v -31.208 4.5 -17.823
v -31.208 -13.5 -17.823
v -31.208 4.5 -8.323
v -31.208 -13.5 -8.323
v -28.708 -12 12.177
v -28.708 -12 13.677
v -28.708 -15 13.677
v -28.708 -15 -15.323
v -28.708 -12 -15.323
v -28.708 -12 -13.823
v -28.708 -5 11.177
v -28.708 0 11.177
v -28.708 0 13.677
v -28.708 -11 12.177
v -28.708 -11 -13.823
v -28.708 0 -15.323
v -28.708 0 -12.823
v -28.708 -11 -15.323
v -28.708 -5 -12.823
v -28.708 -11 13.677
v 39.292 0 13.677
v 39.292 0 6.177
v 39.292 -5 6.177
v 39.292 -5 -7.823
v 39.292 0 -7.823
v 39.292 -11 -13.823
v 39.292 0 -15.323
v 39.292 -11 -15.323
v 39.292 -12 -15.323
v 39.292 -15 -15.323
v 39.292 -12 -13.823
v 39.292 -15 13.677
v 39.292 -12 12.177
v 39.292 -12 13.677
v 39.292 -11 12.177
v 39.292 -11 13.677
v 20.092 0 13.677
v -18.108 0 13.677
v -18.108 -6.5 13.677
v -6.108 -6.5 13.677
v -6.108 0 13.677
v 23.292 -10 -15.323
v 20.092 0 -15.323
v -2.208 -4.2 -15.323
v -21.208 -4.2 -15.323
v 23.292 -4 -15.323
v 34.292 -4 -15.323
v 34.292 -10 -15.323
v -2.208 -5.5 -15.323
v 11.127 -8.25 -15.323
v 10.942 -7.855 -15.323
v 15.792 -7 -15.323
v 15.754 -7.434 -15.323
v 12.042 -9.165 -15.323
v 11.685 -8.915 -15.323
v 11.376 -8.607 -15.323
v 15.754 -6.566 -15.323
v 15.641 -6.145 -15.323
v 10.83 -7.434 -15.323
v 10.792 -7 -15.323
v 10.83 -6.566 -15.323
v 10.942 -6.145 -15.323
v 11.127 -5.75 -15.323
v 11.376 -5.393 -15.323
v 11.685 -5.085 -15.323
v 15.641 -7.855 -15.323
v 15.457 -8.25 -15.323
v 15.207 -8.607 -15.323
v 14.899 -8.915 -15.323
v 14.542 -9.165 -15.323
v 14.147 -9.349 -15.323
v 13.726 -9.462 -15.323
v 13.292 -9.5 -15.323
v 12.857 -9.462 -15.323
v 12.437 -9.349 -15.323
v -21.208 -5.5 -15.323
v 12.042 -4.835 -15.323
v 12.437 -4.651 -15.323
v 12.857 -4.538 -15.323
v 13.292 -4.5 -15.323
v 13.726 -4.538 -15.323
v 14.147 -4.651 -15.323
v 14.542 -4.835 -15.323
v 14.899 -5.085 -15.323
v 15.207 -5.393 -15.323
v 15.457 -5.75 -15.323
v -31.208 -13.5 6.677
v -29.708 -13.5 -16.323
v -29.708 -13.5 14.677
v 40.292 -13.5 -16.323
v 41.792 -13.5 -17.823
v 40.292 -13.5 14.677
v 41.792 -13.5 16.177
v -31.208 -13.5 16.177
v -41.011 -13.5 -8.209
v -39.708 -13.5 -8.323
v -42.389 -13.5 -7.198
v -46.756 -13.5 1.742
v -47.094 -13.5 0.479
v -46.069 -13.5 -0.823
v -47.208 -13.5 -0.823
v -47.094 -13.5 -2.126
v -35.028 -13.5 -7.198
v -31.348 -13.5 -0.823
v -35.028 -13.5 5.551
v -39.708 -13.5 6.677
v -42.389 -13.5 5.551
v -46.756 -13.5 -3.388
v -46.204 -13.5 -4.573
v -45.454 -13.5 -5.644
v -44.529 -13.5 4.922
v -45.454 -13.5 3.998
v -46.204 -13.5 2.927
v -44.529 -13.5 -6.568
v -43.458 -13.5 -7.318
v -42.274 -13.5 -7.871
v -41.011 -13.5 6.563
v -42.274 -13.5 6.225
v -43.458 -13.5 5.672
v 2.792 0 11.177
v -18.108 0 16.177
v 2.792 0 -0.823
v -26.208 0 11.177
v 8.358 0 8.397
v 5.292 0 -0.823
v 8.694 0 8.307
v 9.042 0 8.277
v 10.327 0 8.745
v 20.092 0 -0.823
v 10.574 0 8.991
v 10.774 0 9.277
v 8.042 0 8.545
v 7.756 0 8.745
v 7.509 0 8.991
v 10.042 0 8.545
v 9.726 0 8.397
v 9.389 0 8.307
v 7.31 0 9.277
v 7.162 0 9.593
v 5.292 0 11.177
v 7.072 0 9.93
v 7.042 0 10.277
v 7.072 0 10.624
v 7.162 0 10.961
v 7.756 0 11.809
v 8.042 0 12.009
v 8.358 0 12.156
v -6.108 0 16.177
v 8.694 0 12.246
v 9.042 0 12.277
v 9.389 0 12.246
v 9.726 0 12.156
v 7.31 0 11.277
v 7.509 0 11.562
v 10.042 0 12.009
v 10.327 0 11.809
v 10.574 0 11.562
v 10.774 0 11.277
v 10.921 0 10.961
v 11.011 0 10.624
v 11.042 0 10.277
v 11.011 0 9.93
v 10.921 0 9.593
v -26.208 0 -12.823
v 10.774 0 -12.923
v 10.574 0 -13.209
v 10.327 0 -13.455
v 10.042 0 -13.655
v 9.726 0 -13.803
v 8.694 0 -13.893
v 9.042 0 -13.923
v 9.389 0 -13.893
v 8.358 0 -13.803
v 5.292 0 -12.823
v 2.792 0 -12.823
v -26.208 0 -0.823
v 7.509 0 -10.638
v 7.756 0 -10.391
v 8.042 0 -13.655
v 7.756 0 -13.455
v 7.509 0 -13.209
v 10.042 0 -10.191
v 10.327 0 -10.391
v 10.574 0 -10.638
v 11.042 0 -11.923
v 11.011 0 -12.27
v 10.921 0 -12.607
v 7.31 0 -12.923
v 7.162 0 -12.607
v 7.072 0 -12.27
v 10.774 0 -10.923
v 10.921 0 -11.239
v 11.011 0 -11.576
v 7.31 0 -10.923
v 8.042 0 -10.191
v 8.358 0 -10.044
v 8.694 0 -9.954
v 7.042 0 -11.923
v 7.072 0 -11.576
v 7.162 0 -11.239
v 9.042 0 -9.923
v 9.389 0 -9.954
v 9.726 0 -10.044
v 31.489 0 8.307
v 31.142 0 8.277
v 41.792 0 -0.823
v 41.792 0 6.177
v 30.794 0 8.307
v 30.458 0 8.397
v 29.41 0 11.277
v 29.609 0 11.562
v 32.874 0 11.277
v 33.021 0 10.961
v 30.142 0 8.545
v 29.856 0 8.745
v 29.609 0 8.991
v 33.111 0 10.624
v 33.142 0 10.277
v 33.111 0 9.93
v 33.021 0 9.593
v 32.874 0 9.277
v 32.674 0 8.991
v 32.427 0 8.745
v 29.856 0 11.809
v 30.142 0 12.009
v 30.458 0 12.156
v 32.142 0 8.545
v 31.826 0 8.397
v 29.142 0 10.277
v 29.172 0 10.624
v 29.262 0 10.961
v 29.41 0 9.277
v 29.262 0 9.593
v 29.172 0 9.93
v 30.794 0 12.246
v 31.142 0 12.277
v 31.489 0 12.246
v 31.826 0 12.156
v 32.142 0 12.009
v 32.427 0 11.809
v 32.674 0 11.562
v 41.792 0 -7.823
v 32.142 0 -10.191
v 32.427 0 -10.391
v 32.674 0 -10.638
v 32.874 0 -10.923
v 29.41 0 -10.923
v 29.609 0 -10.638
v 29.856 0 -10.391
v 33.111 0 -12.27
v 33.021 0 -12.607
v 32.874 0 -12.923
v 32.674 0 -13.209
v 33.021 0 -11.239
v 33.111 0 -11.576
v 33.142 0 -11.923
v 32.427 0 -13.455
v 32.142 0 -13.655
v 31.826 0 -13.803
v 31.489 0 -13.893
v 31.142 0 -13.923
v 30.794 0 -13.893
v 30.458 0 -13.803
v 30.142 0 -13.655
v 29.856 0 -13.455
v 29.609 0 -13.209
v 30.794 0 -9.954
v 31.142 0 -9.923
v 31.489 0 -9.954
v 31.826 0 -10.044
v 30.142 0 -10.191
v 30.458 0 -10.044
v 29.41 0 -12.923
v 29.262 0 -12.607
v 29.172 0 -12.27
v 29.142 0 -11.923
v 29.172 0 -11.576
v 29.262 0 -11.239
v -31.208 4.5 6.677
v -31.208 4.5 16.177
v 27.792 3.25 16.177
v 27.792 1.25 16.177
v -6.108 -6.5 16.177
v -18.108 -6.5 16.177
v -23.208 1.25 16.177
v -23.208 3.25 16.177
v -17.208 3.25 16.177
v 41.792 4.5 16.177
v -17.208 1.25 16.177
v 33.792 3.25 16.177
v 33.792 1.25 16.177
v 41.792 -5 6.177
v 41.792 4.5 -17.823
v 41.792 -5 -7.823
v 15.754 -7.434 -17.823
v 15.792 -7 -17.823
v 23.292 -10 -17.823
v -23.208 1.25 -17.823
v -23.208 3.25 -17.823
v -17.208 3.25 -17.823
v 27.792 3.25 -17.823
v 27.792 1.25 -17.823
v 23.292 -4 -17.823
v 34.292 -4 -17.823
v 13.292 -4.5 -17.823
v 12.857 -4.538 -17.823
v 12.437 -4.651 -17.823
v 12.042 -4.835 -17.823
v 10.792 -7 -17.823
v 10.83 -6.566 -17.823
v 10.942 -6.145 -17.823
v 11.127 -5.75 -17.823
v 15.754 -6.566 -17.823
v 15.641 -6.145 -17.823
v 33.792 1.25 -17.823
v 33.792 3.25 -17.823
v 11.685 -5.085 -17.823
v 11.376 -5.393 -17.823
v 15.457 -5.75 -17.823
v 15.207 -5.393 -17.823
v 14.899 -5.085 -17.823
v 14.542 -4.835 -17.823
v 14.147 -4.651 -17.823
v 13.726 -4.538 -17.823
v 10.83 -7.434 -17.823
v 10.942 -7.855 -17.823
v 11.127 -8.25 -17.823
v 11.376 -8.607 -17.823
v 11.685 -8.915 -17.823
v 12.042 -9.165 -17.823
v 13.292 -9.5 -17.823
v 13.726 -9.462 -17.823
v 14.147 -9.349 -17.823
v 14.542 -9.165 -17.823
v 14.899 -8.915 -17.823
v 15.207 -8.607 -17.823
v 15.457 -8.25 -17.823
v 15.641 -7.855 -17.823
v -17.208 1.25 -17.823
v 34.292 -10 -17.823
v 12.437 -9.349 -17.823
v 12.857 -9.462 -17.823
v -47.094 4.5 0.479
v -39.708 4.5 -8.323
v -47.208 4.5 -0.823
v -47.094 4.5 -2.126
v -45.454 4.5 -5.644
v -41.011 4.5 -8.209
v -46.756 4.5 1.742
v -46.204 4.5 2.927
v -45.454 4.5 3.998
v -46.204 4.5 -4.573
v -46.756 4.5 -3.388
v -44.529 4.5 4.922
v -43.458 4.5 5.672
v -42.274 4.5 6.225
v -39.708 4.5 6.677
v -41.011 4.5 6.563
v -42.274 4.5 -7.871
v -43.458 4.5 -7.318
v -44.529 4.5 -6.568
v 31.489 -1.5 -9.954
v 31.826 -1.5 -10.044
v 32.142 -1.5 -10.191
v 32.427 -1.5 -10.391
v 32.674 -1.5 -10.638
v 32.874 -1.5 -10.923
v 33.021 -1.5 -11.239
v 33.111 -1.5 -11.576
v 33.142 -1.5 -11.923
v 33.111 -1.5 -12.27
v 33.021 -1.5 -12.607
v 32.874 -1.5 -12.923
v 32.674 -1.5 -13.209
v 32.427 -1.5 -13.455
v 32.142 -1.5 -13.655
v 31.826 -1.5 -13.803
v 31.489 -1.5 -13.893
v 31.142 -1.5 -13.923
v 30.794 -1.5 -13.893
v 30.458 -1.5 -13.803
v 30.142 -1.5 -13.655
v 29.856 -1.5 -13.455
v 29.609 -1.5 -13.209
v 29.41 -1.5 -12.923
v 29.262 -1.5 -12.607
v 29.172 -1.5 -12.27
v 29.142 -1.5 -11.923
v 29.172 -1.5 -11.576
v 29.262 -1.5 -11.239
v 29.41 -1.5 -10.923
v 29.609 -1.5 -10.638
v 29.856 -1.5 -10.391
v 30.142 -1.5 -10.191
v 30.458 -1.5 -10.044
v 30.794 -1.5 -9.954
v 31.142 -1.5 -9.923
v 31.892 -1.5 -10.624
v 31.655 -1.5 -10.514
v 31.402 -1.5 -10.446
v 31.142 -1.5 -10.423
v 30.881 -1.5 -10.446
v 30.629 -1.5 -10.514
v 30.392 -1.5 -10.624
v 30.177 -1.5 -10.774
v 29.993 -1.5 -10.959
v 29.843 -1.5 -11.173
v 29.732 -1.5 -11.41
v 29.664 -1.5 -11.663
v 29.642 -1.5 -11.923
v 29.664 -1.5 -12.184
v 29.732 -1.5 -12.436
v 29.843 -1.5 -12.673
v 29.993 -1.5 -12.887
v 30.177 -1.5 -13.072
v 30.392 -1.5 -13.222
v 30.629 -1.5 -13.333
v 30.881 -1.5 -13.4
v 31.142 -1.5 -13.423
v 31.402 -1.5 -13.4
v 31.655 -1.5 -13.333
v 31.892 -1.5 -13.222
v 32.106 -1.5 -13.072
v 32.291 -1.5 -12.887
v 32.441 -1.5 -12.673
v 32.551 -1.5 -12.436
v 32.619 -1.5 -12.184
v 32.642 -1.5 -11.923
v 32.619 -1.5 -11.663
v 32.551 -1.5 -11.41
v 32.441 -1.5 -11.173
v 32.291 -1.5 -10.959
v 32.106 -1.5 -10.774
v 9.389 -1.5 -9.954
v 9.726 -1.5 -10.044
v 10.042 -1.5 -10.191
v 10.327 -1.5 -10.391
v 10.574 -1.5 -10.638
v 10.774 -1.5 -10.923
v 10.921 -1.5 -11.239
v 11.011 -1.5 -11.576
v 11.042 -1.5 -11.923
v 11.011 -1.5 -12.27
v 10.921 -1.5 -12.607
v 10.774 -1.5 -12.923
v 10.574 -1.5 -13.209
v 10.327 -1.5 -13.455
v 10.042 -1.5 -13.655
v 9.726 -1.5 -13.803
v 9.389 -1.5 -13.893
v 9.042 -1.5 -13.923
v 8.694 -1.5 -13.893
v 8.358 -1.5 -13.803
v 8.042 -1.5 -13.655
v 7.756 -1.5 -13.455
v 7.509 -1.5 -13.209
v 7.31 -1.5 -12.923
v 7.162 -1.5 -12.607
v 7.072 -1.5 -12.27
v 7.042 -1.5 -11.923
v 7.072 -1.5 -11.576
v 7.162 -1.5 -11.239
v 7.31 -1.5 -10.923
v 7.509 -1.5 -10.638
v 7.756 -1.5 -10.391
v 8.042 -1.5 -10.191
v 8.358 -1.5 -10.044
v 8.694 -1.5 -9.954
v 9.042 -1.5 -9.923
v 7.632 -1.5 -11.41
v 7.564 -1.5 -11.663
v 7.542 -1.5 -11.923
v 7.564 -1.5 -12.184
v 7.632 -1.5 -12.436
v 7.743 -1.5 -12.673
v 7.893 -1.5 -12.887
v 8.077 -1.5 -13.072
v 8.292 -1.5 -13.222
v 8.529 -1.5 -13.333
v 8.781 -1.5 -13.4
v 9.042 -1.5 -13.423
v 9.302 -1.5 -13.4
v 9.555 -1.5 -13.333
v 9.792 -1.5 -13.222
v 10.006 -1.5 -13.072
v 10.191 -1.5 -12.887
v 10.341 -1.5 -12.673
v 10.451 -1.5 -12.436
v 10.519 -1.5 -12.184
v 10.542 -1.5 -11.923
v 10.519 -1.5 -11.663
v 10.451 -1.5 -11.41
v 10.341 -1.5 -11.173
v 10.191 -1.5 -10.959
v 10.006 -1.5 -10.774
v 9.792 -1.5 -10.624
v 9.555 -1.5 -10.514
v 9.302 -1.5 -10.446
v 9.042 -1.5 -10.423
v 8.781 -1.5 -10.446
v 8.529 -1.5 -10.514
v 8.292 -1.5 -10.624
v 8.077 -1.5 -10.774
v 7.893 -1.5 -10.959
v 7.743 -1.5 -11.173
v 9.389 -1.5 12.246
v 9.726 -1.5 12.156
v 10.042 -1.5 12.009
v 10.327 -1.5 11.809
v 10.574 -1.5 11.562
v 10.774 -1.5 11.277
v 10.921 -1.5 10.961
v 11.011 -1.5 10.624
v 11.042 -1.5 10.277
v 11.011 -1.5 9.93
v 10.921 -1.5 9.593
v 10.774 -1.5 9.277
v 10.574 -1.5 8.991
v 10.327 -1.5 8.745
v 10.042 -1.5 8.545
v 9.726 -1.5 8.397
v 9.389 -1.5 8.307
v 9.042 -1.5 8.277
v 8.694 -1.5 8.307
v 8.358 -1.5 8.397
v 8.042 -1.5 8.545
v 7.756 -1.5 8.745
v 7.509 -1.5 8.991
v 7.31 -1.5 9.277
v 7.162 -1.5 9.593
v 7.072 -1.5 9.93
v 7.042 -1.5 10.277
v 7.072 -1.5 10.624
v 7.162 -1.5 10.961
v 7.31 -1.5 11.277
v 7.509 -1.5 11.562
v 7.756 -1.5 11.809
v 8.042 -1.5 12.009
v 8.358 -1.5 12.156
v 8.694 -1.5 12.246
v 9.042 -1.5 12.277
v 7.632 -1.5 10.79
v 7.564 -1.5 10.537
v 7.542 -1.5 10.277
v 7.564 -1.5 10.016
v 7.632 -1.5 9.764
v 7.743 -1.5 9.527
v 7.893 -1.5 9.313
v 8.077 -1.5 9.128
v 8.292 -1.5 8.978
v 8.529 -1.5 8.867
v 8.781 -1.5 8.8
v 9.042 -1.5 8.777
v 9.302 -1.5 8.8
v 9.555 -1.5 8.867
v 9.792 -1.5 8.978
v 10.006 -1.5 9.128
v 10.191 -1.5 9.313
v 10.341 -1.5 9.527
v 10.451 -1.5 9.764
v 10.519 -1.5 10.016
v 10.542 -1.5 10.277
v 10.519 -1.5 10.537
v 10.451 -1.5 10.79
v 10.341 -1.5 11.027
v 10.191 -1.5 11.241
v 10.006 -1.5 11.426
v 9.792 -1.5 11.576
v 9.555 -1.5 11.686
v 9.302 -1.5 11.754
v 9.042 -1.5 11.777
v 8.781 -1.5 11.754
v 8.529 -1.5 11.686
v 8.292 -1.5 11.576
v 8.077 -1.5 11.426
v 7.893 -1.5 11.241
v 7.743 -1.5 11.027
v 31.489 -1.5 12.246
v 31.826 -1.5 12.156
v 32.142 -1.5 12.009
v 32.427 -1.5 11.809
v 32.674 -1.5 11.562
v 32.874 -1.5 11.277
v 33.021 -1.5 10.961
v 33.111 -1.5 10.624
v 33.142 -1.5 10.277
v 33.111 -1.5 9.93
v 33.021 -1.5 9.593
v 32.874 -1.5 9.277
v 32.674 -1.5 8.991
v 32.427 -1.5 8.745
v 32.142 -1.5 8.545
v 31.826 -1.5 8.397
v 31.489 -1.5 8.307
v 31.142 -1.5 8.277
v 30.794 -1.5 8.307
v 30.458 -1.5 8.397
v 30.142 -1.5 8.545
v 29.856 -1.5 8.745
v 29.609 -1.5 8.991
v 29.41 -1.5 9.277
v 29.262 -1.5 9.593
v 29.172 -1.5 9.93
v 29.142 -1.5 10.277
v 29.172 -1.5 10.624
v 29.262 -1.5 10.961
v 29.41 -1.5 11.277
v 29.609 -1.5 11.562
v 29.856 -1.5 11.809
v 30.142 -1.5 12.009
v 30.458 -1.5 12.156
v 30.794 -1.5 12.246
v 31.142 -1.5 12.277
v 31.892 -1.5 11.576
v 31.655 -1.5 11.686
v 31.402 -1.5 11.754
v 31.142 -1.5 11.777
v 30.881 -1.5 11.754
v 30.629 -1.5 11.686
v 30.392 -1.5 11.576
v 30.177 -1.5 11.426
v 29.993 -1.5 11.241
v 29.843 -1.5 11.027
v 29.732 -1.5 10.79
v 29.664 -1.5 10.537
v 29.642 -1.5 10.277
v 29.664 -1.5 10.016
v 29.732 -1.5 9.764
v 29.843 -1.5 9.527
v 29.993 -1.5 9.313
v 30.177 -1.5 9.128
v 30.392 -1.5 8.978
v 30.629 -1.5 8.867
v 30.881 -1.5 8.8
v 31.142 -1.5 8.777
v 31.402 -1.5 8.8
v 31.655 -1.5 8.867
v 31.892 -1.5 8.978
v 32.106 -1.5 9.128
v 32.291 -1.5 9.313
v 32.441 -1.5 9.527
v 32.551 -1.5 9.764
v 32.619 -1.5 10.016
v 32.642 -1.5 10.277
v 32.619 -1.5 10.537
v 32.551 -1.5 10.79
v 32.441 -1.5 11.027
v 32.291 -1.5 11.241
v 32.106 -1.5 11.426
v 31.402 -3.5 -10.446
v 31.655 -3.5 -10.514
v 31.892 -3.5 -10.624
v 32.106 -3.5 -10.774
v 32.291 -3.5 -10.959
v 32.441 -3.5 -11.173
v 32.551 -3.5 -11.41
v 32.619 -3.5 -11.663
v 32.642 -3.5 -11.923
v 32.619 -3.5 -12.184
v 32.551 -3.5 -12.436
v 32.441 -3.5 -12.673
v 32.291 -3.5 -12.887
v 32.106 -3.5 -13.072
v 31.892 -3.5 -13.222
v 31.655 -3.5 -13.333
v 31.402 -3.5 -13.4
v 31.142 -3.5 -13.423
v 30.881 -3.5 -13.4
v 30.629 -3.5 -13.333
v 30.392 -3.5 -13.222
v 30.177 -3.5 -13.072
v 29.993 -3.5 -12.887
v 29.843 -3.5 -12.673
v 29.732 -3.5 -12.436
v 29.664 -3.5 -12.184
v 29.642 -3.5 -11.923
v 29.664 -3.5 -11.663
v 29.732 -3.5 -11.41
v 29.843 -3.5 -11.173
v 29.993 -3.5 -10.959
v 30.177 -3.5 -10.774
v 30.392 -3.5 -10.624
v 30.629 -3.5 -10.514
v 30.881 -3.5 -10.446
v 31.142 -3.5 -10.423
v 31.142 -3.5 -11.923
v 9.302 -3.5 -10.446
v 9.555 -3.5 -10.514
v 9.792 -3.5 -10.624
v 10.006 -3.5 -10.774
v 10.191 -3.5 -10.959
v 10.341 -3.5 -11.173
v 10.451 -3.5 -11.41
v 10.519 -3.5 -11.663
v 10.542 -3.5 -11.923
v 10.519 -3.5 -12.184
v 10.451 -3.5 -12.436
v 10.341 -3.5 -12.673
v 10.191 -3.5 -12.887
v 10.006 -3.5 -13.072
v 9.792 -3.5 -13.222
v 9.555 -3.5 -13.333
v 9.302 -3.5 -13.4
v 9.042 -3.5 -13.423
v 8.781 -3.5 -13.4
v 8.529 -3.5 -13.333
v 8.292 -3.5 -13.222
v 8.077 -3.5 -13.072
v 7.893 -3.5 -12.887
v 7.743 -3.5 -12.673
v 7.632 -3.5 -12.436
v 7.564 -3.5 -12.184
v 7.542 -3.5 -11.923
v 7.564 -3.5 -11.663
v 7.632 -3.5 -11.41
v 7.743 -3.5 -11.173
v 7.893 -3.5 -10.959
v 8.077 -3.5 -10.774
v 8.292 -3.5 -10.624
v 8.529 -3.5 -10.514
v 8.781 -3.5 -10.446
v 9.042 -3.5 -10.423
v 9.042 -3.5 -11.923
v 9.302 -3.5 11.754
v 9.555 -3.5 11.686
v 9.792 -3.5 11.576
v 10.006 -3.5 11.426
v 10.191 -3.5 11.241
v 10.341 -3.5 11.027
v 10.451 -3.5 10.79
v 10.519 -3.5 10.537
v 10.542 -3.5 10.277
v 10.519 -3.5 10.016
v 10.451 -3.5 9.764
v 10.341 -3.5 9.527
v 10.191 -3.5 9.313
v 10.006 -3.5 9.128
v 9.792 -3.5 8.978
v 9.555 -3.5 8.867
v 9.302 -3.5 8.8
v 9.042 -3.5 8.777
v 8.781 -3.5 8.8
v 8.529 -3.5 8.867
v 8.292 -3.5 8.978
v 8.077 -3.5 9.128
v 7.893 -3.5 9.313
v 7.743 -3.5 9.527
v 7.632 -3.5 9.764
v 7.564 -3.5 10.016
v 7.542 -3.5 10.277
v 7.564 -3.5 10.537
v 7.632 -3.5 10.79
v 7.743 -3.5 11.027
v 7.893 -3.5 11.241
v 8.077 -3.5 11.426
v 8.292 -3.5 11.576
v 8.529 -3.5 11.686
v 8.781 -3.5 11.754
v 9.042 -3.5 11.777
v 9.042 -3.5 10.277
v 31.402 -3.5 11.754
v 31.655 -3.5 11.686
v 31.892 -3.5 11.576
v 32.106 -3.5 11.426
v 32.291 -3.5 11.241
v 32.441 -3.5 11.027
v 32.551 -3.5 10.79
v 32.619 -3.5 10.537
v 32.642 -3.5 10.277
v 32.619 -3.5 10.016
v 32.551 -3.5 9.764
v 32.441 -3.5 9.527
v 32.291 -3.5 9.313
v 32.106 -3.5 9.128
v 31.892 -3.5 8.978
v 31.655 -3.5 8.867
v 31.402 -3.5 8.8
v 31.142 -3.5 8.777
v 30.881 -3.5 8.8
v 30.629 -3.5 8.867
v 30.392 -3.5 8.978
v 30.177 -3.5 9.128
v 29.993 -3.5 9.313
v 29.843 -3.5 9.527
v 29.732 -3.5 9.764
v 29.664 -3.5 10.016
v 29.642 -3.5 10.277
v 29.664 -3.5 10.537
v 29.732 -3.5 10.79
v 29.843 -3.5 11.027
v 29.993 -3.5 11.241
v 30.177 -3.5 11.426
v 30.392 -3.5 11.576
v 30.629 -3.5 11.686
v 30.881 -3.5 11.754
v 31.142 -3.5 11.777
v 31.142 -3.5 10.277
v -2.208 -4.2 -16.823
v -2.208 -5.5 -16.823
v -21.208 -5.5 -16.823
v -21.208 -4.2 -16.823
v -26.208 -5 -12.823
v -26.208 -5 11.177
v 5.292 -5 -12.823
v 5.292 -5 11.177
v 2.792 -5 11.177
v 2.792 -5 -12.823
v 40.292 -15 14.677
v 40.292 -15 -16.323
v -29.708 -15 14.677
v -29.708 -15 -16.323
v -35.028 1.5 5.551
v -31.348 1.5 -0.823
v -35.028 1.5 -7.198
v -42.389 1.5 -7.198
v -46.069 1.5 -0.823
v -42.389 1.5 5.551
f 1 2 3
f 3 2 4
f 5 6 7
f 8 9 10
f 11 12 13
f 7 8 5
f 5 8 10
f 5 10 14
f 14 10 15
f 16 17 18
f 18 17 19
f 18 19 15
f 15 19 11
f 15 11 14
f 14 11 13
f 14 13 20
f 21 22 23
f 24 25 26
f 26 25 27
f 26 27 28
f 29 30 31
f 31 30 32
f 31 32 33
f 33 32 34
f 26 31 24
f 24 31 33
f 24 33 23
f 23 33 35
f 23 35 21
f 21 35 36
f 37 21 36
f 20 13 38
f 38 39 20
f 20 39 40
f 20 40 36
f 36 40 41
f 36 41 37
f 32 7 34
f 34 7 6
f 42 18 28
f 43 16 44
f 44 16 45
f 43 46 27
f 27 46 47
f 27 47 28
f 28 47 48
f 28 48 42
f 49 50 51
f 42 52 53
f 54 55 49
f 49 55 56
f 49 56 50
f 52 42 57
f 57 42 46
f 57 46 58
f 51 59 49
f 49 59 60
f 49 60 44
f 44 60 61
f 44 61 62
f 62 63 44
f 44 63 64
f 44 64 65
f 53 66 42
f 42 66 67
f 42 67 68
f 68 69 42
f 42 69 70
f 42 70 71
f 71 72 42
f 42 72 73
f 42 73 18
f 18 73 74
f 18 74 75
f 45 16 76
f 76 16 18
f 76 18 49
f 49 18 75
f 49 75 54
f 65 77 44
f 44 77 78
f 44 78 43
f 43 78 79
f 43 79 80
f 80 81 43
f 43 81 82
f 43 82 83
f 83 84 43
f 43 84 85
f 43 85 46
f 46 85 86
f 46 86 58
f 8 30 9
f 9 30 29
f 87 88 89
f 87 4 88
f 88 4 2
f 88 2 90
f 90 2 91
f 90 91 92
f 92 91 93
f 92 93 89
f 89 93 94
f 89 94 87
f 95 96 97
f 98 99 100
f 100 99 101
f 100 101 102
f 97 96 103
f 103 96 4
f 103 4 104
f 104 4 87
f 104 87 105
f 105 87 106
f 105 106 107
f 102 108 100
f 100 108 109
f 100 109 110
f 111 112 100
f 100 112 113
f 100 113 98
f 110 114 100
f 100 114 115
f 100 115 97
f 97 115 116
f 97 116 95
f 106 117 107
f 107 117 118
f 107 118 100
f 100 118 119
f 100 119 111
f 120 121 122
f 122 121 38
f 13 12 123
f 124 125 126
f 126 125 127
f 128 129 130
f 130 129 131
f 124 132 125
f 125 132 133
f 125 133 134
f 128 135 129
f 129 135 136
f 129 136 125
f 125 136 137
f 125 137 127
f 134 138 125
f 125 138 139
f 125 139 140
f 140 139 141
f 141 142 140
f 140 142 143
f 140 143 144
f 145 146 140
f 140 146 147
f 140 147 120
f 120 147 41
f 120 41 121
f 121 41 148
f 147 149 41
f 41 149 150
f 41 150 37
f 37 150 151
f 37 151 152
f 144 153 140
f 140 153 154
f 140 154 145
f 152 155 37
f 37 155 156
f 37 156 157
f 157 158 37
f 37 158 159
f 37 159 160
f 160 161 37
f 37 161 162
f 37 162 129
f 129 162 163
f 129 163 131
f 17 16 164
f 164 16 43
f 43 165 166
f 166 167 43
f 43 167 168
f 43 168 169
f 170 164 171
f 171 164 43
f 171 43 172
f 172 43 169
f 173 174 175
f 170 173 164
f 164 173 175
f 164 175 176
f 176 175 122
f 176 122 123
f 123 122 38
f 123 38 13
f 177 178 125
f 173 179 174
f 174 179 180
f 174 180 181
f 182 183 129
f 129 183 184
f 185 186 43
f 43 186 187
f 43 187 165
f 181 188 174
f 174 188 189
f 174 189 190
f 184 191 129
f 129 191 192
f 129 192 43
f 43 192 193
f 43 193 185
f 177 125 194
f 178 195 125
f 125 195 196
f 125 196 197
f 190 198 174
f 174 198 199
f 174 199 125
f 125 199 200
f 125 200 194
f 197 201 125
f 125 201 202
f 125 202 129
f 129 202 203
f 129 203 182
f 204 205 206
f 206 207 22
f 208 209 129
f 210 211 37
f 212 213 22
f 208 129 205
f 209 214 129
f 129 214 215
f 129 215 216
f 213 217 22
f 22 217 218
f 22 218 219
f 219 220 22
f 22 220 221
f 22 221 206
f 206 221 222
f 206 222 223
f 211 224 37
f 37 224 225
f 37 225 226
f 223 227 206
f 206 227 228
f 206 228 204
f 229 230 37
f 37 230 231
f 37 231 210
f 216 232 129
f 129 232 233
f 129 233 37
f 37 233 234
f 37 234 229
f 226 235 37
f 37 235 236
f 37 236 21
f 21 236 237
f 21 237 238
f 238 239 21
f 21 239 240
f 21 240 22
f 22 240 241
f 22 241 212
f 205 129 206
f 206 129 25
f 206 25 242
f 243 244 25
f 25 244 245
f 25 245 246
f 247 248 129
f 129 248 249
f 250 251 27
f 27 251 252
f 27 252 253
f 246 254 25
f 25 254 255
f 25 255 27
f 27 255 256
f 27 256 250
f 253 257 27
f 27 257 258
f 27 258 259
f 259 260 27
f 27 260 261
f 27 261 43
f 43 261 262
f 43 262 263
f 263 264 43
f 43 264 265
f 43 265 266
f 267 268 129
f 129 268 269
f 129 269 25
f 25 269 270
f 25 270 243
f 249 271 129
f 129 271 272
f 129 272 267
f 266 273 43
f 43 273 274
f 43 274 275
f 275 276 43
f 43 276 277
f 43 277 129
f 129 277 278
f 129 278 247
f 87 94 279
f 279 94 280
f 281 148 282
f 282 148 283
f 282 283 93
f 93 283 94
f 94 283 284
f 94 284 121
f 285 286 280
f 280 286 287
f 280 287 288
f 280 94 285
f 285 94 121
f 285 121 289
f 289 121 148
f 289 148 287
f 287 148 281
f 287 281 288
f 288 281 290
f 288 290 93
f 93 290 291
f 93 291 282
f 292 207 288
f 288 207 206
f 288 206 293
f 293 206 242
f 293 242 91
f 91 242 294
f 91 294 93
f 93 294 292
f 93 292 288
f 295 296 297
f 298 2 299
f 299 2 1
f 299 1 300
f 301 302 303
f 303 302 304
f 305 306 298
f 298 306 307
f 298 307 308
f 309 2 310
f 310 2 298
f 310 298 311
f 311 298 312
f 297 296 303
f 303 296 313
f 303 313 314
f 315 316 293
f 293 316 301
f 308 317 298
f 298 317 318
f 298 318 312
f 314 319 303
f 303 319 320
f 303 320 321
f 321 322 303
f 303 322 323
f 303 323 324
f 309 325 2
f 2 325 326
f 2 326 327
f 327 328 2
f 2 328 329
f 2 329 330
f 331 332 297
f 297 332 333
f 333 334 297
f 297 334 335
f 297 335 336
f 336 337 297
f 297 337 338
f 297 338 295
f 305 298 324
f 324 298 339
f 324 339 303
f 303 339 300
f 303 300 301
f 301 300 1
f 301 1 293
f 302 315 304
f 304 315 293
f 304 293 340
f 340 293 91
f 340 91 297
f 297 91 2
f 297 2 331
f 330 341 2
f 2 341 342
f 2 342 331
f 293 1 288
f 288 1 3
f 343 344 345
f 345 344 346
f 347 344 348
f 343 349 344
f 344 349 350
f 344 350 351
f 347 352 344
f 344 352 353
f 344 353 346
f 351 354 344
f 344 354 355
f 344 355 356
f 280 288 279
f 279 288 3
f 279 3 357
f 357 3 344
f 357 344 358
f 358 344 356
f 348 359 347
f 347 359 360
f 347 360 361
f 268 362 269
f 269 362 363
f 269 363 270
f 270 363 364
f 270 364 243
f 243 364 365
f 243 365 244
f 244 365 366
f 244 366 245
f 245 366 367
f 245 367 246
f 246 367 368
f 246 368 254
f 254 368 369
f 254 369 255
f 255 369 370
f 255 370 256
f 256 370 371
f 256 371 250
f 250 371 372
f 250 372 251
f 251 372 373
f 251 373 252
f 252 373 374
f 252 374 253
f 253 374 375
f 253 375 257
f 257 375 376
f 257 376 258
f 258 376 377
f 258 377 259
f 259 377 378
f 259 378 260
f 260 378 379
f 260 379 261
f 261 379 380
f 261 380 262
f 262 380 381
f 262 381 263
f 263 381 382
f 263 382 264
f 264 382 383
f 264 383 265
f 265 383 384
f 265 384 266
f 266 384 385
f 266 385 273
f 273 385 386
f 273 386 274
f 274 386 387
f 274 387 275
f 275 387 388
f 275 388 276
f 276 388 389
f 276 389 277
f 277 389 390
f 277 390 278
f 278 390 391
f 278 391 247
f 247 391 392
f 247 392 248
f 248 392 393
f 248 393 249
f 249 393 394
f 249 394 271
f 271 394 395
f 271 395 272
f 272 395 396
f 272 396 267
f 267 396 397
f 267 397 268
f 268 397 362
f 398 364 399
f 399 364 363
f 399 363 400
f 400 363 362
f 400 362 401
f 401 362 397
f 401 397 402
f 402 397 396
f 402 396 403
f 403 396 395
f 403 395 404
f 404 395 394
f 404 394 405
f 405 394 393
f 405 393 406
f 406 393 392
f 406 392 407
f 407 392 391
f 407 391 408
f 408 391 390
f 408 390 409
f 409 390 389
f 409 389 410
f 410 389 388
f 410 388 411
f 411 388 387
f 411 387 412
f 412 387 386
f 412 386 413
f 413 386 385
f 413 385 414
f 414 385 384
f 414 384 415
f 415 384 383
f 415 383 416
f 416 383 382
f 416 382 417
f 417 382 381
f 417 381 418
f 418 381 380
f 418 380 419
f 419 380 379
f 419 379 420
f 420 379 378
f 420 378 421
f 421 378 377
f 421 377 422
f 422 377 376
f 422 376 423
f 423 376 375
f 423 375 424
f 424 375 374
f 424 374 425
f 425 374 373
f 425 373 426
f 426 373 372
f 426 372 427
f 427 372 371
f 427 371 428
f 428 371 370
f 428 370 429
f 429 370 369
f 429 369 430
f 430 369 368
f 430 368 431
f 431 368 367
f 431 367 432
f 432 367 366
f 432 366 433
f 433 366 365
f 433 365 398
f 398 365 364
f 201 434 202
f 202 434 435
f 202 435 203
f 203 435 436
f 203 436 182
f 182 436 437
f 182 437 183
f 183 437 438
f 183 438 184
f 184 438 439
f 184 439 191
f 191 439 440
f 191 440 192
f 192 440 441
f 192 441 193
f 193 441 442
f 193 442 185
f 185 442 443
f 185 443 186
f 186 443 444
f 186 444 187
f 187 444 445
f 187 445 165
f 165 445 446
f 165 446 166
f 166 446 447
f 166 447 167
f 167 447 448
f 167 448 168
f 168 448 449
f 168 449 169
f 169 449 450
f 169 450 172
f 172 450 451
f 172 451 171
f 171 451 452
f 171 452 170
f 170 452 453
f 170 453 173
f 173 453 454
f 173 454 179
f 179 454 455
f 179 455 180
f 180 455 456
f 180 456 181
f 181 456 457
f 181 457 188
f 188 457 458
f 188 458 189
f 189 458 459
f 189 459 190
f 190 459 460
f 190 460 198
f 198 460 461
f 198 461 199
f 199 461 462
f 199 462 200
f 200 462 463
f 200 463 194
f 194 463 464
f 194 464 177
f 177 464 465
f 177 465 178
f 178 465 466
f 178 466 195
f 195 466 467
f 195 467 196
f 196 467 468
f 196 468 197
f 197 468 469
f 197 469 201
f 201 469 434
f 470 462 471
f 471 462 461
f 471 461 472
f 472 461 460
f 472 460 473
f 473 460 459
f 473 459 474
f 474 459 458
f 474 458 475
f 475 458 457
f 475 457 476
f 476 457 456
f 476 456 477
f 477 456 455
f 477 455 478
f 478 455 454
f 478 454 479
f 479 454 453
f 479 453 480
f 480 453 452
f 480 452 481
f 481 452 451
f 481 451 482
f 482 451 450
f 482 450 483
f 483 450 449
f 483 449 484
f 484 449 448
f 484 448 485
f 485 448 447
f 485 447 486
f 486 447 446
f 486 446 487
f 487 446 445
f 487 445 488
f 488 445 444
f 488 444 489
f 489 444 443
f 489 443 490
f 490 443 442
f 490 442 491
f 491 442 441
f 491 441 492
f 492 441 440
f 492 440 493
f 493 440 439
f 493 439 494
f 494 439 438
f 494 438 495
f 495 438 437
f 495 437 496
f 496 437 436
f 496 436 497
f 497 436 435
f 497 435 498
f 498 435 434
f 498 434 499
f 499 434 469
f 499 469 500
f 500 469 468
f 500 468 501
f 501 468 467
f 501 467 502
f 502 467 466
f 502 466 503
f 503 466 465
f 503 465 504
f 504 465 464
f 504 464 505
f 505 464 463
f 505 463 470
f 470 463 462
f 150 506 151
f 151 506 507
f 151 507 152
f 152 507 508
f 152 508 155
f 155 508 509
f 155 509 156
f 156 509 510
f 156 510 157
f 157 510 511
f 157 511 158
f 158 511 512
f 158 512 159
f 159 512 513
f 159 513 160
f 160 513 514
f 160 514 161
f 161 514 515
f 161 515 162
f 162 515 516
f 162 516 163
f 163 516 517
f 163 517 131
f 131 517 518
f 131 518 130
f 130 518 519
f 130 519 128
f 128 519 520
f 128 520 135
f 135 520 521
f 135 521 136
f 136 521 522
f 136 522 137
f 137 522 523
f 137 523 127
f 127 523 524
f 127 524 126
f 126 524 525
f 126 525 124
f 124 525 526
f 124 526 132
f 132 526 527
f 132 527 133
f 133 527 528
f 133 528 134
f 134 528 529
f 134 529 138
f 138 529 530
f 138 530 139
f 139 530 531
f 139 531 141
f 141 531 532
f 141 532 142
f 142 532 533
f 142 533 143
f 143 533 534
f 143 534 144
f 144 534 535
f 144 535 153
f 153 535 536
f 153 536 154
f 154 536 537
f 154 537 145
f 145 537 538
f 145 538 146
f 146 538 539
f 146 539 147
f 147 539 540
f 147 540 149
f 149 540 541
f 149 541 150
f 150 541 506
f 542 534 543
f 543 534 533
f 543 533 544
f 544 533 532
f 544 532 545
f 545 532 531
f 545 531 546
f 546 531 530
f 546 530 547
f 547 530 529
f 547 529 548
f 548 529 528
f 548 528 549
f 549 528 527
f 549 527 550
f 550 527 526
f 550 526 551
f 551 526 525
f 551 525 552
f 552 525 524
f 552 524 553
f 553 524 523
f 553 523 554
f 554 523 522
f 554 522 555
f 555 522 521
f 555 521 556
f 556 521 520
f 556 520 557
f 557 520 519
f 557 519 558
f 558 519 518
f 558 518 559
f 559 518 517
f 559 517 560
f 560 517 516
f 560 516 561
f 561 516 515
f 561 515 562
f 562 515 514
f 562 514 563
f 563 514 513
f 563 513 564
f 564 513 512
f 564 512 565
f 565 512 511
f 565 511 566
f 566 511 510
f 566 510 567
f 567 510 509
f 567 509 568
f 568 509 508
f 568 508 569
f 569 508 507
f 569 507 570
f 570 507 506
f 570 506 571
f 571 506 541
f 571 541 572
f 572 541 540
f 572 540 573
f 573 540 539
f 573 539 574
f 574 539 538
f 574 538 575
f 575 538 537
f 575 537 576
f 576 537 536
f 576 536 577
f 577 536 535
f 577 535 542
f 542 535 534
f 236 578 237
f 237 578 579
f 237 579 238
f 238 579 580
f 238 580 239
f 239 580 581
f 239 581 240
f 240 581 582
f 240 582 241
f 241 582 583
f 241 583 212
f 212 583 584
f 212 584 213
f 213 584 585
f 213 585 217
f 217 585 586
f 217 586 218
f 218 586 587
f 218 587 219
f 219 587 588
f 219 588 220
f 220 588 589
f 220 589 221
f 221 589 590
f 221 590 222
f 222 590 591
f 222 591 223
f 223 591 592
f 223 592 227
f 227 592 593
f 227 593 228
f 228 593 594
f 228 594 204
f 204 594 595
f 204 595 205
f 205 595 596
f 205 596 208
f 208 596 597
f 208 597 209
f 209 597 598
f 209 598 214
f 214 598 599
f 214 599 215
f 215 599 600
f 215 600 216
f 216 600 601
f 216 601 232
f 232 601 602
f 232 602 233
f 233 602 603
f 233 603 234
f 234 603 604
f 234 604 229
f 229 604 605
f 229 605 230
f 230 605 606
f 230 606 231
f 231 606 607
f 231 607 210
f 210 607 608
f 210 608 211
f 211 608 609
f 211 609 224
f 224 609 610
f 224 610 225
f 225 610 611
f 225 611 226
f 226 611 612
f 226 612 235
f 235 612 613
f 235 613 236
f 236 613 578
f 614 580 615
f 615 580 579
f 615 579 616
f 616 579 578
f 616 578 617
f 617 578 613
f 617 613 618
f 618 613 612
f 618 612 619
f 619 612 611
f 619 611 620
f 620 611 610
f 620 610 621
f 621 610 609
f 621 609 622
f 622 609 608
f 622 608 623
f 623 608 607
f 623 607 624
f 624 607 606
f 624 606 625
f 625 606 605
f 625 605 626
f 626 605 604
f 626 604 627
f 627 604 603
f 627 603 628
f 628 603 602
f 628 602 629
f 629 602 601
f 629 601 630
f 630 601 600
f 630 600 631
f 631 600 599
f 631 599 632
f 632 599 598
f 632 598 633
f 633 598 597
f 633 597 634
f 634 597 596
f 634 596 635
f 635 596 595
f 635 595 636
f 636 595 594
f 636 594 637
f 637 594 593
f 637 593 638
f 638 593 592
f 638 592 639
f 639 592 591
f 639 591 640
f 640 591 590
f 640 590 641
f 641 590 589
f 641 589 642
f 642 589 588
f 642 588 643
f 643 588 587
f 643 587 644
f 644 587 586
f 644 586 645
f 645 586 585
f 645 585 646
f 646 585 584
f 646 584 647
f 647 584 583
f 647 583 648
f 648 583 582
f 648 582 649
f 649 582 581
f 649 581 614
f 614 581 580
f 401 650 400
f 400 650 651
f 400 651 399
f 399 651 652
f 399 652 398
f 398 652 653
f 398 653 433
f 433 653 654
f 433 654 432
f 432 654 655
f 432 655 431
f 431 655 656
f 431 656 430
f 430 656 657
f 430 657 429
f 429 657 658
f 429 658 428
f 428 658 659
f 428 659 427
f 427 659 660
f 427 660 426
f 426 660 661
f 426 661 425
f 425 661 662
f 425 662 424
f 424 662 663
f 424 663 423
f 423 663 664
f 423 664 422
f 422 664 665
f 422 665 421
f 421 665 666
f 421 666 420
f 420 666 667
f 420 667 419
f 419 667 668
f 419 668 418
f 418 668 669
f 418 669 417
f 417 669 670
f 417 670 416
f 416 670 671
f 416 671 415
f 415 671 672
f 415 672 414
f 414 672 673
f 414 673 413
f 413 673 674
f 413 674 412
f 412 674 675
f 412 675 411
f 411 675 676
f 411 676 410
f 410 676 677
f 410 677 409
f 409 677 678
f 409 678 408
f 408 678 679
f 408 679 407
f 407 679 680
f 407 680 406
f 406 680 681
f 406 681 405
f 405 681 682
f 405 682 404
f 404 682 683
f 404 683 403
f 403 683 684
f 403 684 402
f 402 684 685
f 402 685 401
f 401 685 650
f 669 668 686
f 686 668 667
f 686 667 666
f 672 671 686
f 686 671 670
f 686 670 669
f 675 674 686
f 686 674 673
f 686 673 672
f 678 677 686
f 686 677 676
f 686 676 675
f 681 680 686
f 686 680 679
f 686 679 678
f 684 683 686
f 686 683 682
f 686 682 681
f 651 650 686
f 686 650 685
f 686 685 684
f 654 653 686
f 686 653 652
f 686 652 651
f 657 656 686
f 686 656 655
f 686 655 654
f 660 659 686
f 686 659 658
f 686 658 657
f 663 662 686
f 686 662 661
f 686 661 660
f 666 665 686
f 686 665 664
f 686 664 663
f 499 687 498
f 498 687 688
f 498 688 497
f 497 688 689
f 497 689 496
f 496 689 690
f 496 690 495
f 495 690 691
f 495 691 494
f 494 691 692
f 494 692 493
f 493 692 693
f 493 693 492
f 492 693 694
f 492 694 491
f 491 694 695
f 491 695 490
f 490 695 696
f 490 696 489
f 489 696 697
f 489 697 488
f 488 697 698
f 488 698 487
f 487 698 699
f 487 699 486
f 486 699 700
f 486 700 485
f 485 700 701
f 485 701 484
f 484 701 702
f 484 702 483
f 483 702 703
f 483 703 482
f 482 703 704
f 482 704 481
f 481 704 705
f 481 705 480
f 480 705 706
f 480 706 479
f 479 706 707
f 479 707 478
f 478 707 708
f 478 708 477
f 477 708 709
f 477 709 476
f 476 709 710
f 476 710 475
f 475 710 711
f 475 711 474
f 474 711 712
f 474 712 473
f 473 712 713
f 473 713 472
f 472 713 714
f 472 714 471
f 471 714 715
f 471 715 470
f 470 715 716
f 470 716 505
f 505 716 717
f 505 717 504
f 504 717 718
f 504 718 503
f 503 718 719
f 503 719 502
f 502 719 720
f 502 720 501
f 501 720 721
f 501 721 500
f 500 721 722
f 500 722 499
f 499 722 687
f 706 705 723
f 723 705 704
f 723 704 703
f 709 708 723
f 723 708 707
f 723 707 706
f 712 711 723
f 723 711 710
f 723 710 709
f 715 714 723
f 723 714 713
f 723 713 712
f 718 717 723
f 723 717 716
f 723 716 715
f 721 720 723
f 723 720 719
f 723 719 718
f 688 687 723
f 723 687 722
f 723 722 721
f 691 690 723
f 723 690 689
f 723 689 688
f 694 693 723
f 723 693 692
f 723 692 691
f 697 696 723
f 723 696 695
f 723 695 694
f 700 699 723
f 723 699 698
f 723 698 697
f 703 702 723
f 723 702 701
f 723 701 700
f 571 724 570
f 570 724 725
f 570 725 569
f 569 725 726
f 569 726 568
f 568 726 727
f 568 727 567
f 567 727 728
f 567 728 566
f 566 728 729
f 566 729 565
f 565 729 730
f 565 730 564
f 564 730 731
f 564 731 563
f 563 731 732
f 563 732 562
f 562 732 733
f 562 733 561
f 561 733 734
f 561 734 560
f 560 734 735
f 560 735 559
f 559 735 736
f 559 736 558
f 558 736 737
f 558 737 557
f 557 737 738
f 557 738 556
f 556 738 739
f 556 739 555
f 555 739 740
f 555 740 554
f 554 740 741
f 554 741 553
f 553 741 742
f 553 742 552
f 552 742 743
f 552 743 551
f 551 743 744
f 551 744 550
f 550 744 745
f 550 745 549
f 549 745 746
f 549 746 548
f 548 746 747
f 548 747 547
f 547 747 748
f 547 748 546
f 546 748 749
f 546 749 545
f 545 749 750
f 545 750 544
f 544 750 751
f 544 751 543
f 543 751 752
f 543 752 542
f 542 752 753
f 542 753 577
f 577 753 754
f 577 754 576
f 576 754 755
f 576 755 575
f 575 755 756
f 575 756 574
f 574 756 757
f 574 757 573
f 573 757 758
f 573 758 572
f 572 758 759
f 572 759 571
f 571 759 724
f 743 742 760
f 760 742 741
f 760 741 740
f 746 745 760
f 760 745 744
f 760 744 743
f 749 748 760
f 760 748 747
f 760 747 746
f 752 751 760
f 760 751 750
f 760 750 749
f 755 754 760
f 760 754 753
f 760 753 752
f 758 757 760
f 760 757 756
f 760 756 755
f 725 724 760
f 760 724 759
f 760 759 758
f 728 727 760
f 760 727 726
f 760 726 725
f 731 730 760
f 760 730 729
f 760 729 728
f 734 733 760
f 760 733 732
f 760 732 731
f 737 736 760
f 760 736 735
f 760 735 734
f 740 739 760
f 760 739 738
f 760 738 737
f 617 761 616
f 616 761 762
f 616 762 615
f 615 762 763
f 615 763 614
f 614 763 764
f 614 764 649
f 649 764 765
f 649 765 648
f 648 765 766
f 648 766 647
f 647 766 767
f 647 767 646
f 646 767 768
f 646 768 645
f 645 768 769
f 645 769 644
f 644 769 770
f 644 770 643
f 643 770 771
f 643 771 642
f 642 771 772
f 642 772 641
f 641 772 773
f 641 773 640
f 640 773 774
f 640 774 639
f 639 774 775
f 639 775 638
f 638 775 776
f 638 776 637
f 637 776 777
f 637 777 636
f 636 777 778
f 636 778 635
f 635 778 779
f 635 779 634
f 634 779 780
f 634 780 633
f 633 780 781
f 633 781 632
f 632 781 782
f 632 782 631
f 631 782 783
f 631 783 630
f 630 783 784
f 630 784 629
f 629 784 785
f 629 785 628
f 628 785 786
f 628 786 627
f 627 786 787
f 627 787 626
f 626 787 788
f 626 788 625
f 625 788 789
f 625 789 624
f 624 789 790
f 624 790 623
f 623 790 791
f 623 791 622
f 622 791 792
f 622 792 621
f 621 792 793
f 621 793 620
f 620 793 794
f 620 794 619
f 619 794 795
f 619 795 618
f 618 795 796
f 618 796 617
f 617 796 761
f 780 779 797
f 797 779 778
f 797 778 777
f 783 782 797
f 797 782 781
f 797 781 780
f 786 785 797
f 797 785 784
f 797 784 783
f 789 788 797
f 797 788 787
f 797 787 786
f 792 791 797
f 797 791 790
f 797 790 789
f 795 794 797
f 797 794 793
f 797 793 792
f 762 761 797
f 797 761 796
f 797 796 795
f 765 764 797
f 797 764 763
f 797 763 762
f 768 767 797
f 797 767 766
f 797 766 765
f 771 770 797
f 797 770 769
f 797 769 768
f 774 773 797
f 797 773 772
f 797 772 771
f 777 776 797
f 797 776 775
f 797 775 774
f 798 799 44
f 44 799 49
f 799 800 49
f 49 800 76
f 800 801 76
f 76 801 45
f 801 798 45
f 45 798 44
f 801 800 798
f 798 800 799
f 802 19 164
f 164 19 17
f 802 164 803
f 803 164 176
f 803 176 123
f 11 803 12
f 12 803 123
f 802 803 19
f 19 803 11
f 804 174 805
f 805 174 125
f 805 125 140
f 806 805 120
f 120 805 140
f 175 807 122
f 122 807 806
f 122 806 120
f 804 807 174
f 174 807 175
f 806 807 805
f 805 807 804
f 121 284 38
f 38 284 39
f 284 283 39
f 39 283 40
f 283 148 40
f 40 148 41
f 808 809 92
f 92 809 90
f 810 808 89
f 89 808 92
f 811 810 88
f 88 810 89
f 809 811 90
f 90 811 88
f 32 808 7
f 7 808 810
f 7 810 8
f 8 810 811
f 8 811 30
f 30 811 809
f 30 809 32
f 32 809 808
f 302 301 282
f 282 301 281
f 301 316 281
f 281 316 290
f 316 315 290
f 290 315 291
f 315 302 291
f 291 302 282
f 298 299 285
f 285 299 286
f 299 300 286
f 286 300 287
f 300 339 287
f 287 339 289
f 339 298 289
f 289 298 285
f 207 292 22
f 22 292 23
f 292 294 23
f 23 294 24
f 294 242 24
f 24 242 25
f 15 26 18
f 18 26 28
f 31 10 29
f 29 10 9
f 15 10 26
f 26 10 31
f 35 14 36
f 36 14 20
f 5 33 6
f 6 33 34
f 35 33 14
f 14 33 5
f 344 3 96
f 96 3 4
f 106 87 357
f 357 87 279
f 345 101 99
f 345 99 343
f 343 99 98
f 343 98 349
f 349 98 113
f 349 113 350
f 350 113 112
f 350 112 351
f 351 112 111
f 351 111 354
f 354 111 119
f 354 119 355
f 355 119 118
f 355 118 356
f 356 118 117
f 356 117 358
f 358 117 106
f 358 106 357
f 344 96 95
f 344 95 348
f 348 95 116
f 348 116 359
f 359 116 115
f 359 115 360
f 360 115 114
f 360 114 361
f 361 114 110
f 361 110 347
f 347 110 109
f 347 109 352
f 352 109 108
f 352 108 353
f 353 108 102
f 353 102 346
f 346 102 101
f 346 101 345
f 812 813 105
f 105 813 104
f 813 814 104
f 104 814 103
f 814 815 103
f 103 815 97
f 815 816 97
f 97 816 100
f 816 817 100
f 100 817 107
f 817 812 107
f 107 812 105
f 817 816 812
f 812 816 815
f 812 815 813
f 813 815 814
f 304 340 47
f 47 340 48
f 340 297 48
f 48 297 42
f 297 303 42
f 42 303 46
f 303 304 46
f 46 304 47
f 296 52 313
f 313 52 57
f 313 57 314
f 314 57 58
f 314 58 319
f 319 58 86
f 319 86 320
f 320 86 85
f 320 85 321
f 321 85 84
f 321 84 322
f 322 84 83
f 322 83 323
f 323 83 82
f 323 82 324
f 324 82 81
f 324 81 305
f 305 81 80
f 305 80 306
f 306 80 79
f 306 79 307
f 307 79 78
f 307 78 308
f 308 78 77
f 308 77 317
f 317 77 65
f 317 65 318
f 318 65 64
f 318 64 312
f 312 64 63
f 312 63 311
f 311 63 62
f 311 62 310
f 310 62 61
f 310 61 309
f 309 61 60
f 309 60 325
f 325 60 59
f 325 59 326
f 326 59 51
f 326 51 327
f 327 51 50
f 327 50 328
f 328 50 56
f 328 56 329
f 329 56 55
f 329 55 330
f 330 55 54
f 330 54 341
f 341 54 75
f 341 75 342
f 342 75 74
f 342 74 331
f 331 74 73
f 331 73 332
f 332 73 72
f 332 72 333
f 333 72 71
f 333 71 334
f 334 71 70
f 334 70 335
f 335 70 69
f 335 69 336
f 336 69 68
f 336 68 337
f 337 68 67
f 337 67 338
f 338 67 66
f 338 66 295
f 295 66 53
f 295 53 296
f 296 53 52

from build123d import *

# Parameters (mm, degrees)
SKETCH1_W             = 73
SKETCH1_H             = 34
BASE_DEPTH            = 4.5
SKETCH21_W            = 73
SKETCH21_H            = 34
EXTRUDE_UP_DEPTH      = 13.5
SKETCH22_W            = 68
SKETCH22_H            = 29
CUT_DOWN_DEPTH        = 13.5
SKETCH27_R            = 2
BOSS_EXTRUDE15_DEPTH  = 1.5
SKETCH29_R            = 2
BOSS_EXTRUDE16_DEPTH  = 1.5
SKETCH30_R            = 2
BOSS_EXTRUDE17_DEPTH  = 1.5
SKETCH28_R            = 2
BOSS_EXTRUDE18_DEPTH  = 1.5
SKETCH31_R            = 1.5
BOSS_EXTRUDE19_DEPTH  = 2
SKETCH32_R            = 1.5
BOSS_EXTRUDE20_DEPTH  = 2
SKETCH33_R            = 1.5
BOSS_EXTRUDE21_DEPTH  = 2
SKETCH34_R            = 1.5
BOSS_EXTRUDE22_DEPTH  = 2
SKETCH39_W            = 19
SKETCH39_H            = 1.3
WALL_SLIT_DEPTH       = 1.5
SKETCH41_W            = 2.5
SKETCH41_H            = 24
OUTSIDE_BLOCK_DEPTH   = 5
SKETCH44_W            = 2.5
SKETCH44_H            = 24
INSIDE_BLOCK_DEPTH    = 5
SKETCH45_W            = 12
SKETCH45_H            = 6.5
USB_HOLE_DEPTH        = 2.5
SKETCH62_W            = 70
SKETCH62_H            = 31
RAISE_LIP_DEPTH       = 1.5
SKETCH63_W            = 68
SKETCH63_H            = 29
CUT_LIP_DEPTH         = 1.5
SKETCH47_W            = 6
SKETCH47_H            = 2
TOP_TIE_HOLE_DEPTH    = 34
SKETCH48_W            = 6
SKETCH48_H            = 2
BOTTOM_TIE_HOLE_DEPTH = 34
SKETCH56_W            = 14
SKETCH56_H            = 5
WIRE_HOLE_DEPTH       = 2.5
SKETCH68_W            = 68
SKETCH68_H            = 1
RIGHT_LEDGE_DEPTH     = 1.5
SKETCH67_W            = 68
SKETCH67_H            = 1
LEFT_LEDGE_DEPTH      = 1.5
SKETCH65_W            = 16
SKETCH65_H            = 15
NUT_HOLE_SQUARE_DEPTH = 18
NUT_HOLE_FILLET_R     = 7.5
NUT_HOLE_HEX_DEPTH    = 15
SKETCH69_W            = 11
SKETCH69_H            = 6
CUT_EXTRUDE1_DEPTH    = 2.5
SKETCH70_R            = 2.5
CUT_EXTRUDE2_DEPTH    = 2.5


with BuildPart() as part:
    # Sketch1 → base (new body)
    with BuildSketch(Plane(origin=(0, 0, 0), x_dir=(1, 0, 0), z_dir=(0, 1, 0))):
        with Locations((5.291578947, 0.823157895)):
            Rectangle(SKETCH1_W, SKETCH1_H)
    extrude(amount=BASE_DEPTH)

    # Sketch21 → extrude up (add)
    with BuildSketch(Plane(origin=(0, 0, 0), x_dir=(-1, 0, 0), z_dir=(0, -1, 0))):
        with Locations((-5.291578947, 0.823157895)):
            Rectangle(SKETCH21_W, SKETCH21_H)
    extrude(amount=EXTRUDE_UP_DEPTH)

    # Sketch22 → cut down (cut)
    with BuildSketch(Plane(origin=(0, -13.5, 0), x_dir=(-1, 0, 0), z_dir=(0, -1, 0))):
        with Locations((-5.291578947, 0.823157895)):
            Rectangle(SKETCH22_W, SKETCH22_H)
    extrude(amount=-CUT_DOWN_DEPTH, mode=Mode.SUBTRACT)

    # Sketch27 → Boss-Extrude15 (add)
    with BuildSketch(Plane.XZ):
        with Locations(Location((31.141578947, -11.923157895, 0), (0, 0, 270))):
            Circle(SKETCH27_R)
    extrude(amount=BOSS_EXTRUDE15_DEPTH)

    # Sketch29 → Boss-Extrude16 (add)
    with BuildSketch(Plane.XZ):
        with Locations(Location((9.041578947, -11.923157895, 0), (0, 0, 270))):
            Circle(SKETCH29_R)
    extrude(amount=BOSS_EXTRUDE16_DEPTH)

    # Sketch30 → Boss-Extrude17 (add)
    with BuildSketch(Plane.XZ):
        with Locations(Location((9.041578947, 10.276842105, 0), (0, 0, 270))):
            Circle(SKETCH30_R)
    extrude(amount=BOSS_EXTRUDE17_DEPTH)

    # Sketch28 → Boss-Extrude18 (add)
    with BuildSketch(Plane.XZ):
        with Locations(Location((31.141578947, 10.276842105, 0), (0, 0, 270))):
            Circle(SKETCH28_R)
    extrude(amount=BOSS_EXTRUDE18_DEPTH)

    # Sketch31 → Boss-Extrude19 (add)
    with BuildSketch(Plane.XZ.offset(1.5)):
        with Locations(Location((31.141578947, -11.923157895, 0), (0, 0, 270))):
            Circle(SKETCH31_R)
    extrude(amount=BOSS_EXTRUDE19_DEPTH)

    # Sketch32 → Boss-Extrude20 (add)
    with BuildSketch(Plane.XZ.offset(1.5)):
        with Locations(Location((9.041578947, -11.923157895, 0), (0, 0, 270))):
            Circle(SKETCH32_R)
    extrude(amount=BOSS_EXTRUDE20_DEPTH)

    # Sketch33 → Boss-Extrude21 (add)
    with BuildSketch(Plane.XZ.offset(1.5)):
        with Locations(Location((9.041578947, 10.276842105, 0), (0, 0, 270))):
            Circle(SKETCH33_R)
    extrude(amount=BOSS_EXTRUDE21_DEPTH)

    # Sketch34 → Boss-Extrude22 (add)
    with BuildSketch(Plane.XZ.offset(1.5)):
        with Locations(Location((31.141578947, 10.276842105, 0), (0, 0, 270))):
            Circle(SKETCH34_R)
    extrude(amount=BOSS_EXTRUDE22_DEPTH)

    # Sketch39 → wall slit (cut)
    with BuildSketch(Plane.XY.offset(-15.323157895)):
        with Locations((-11.708421053, -4.85)):
            Rectangle(SKETCH39_W, SKETCH39_H)
    extrude(amount=-WALL_SLIT_DEPTH, mode=Mode.SUBTRACT)

    # Sketch41 → outside block (add)
    with BuildSketch(Plane.XZ):
        with Locations((-27.458421053, -0.823157895)):
            Rectangle(SKETCH41_W, SKETCH41_H)
    extrude(amount=OUTSIDE_BLOCK_DEPTH)

    # Sketch44 → inside block (add)
    with BuildSketch(Plane.XZ):
        with Locations((4.041578947, -0.823157895)):
            Rectangle(SKETCH44_W, SKETCH44_H)
    extrude(amount=INSIDE_BLOCK_DEPTH)

    # Sketch45 → usb hole (cut)
    with BuildSketch(Plane(origin=(0, 0, 13.676842105), x_dir=(-1, 0, 0), z_dir=(0, 0, -1))):
        with Locations((12.108421053, -3.25)):
            Rectangle(SKETCH45_W, SKETCH45_H)
    extrude(amount=-USB_HOLE_DEPTH, mode=Mode.SUBTRACT)

    # Sketch62 → raise lip (add)
    with BuildSketch(Plane.XZ.offset(13.5)):
        with Locations((5.291578947, -0.823157895)):
            Rectangle(SKETCH62_W, SKETCH62_H)
    extrude(amount=RAISE_LIP_DEPTH)

    # Sketch63 → cut lip (cut)
    with BuildSketch(Plane.XZ.offset(15)):
        with Locations((5.291578947, -0.823157895)):
            Rectangle(SKETCH63_W, SKETCH63_H)
    extrude(amount=-CUT_LIP_DEPTH, mode=Mode.SUBTRACT)

    # Sketch47 → top tie hole (cut)
    with BuildSketch(Plane.XY.offset(16.176842105)):
        with Locations((30.791578947, 2.25)):
            Rectangle(SKETCH47_W, SKETCH47_H)
    extrude(amount=-TOP_TIE_HOLE_DEPTH, mode=Mode.SUBTRACT)

    # Sketch48 → bottom tie hole (cut)
    with BuildSketch(Plane.XY.offset(16.176842105)):
        with Locations((-20.208421053, 2.25)):
            Rectangle(SKETCH48_W, SKETCH48_H)
    extrude(amount=-BOTTOM_TIE_HOLE_DEPTH, mode=Mode.SUBTRACT)

    # Sketch56 → wire hole (cut)
    with BuildSketch(Plane.ZY.offset(-39.291578947)):
        with Locations((-0.823157895, -2.5)):
            Rectangle(SKETCH56_W, SKETCH56_H)
    extrude(amount=-WIRE_HOLE_DEPTH, mode=Mode.SUBTRACT)

    # Sketch68 → right ledge (add)
    with BuildSketch(Plane.XY.offset(-15.323157895)):
        with Locations((5.291578947, -11.5)):
            Rectangle(SKETCH68_W, SKETCH68_H)
    extrude(amount=RIGHT_LEDGE_DEPTH)

    # Sketch67 → left ledge (add)
    with BuildSketch(Plane(origin=(0, 0, 13.676842105), x_dir=(-1, 0, 0), z_dir=(0, 0, -1))):
        with Locations((-5.291578947, -11.5)):
            Rectangle(SKETCH67_W, SKETCH67_H)
    extrude(amount=LEFT_LEDGE_DEPTH)

    # Sketch65 → nut hole square (add)
    with BuildSketch(Plane.XZ.offset(13.5)):
        with Locations((-39.208421053, -0.823157895)):
            Rectangle(SKETCH65_W, SKETCH65_H)
    extrude(amount=-NUT_HOLE_SQUARE_DEPTH)

    # nut hole fillet
    nut_hole_fillet_edges = [part.edges().sort_by_distance(p)[0] for p in [
        (-47.208421053, -4.5, -8.323157895),
        (-47.208421053, -4.5, 6.676842105),
    ]]
    fillet(nut_hole_fillet_edges, radius=NUT_HOLE_FILLET_R - 0.0001)  # a hair under: the kernel refuses the full size

    # Sketch66 → nut hole hex (cut)
    with BuildSketch(Plane.XZ.offset(13.5)):
        Polygon((-35.028097876, 5.551348835), (-42.388744229, 5.551348835), (-46.069067406, -0.823157895), (-42.388744229, -7.197664625), (-35.028097876, -7.197664625), (-31.347774699, -0.823157895), align=None)
    extrude(amount=-NUT_HOLE_HEX_DEPTH, mode=Mode.SUBTRACT)

    # Sketch69 → Cut-Extrude1 (cut)
    with BuildSketch(Plane.XY.offset(-15.323157895)):
        with Locations((28.791578947, -7)):
            Rectangle(SKETCH69_W, SKETCH69_H)
    extrude(amount=-CUT_EXTRUDE1_DEPTH, mode=Mode.SUBTRACT)

    # Sketch70 → Cut-Extrude2 (cut)
    with BuildSketch(Plane.XY.offset(-15.323157895)):
        with Locations((13.291578947, -7)):
            Circle(SKETCH70_R)
    extrude(amount=-CUT_EXTRUDE2_DEPTH, mode=Mode.SUBTRACT)


solid = part.part
